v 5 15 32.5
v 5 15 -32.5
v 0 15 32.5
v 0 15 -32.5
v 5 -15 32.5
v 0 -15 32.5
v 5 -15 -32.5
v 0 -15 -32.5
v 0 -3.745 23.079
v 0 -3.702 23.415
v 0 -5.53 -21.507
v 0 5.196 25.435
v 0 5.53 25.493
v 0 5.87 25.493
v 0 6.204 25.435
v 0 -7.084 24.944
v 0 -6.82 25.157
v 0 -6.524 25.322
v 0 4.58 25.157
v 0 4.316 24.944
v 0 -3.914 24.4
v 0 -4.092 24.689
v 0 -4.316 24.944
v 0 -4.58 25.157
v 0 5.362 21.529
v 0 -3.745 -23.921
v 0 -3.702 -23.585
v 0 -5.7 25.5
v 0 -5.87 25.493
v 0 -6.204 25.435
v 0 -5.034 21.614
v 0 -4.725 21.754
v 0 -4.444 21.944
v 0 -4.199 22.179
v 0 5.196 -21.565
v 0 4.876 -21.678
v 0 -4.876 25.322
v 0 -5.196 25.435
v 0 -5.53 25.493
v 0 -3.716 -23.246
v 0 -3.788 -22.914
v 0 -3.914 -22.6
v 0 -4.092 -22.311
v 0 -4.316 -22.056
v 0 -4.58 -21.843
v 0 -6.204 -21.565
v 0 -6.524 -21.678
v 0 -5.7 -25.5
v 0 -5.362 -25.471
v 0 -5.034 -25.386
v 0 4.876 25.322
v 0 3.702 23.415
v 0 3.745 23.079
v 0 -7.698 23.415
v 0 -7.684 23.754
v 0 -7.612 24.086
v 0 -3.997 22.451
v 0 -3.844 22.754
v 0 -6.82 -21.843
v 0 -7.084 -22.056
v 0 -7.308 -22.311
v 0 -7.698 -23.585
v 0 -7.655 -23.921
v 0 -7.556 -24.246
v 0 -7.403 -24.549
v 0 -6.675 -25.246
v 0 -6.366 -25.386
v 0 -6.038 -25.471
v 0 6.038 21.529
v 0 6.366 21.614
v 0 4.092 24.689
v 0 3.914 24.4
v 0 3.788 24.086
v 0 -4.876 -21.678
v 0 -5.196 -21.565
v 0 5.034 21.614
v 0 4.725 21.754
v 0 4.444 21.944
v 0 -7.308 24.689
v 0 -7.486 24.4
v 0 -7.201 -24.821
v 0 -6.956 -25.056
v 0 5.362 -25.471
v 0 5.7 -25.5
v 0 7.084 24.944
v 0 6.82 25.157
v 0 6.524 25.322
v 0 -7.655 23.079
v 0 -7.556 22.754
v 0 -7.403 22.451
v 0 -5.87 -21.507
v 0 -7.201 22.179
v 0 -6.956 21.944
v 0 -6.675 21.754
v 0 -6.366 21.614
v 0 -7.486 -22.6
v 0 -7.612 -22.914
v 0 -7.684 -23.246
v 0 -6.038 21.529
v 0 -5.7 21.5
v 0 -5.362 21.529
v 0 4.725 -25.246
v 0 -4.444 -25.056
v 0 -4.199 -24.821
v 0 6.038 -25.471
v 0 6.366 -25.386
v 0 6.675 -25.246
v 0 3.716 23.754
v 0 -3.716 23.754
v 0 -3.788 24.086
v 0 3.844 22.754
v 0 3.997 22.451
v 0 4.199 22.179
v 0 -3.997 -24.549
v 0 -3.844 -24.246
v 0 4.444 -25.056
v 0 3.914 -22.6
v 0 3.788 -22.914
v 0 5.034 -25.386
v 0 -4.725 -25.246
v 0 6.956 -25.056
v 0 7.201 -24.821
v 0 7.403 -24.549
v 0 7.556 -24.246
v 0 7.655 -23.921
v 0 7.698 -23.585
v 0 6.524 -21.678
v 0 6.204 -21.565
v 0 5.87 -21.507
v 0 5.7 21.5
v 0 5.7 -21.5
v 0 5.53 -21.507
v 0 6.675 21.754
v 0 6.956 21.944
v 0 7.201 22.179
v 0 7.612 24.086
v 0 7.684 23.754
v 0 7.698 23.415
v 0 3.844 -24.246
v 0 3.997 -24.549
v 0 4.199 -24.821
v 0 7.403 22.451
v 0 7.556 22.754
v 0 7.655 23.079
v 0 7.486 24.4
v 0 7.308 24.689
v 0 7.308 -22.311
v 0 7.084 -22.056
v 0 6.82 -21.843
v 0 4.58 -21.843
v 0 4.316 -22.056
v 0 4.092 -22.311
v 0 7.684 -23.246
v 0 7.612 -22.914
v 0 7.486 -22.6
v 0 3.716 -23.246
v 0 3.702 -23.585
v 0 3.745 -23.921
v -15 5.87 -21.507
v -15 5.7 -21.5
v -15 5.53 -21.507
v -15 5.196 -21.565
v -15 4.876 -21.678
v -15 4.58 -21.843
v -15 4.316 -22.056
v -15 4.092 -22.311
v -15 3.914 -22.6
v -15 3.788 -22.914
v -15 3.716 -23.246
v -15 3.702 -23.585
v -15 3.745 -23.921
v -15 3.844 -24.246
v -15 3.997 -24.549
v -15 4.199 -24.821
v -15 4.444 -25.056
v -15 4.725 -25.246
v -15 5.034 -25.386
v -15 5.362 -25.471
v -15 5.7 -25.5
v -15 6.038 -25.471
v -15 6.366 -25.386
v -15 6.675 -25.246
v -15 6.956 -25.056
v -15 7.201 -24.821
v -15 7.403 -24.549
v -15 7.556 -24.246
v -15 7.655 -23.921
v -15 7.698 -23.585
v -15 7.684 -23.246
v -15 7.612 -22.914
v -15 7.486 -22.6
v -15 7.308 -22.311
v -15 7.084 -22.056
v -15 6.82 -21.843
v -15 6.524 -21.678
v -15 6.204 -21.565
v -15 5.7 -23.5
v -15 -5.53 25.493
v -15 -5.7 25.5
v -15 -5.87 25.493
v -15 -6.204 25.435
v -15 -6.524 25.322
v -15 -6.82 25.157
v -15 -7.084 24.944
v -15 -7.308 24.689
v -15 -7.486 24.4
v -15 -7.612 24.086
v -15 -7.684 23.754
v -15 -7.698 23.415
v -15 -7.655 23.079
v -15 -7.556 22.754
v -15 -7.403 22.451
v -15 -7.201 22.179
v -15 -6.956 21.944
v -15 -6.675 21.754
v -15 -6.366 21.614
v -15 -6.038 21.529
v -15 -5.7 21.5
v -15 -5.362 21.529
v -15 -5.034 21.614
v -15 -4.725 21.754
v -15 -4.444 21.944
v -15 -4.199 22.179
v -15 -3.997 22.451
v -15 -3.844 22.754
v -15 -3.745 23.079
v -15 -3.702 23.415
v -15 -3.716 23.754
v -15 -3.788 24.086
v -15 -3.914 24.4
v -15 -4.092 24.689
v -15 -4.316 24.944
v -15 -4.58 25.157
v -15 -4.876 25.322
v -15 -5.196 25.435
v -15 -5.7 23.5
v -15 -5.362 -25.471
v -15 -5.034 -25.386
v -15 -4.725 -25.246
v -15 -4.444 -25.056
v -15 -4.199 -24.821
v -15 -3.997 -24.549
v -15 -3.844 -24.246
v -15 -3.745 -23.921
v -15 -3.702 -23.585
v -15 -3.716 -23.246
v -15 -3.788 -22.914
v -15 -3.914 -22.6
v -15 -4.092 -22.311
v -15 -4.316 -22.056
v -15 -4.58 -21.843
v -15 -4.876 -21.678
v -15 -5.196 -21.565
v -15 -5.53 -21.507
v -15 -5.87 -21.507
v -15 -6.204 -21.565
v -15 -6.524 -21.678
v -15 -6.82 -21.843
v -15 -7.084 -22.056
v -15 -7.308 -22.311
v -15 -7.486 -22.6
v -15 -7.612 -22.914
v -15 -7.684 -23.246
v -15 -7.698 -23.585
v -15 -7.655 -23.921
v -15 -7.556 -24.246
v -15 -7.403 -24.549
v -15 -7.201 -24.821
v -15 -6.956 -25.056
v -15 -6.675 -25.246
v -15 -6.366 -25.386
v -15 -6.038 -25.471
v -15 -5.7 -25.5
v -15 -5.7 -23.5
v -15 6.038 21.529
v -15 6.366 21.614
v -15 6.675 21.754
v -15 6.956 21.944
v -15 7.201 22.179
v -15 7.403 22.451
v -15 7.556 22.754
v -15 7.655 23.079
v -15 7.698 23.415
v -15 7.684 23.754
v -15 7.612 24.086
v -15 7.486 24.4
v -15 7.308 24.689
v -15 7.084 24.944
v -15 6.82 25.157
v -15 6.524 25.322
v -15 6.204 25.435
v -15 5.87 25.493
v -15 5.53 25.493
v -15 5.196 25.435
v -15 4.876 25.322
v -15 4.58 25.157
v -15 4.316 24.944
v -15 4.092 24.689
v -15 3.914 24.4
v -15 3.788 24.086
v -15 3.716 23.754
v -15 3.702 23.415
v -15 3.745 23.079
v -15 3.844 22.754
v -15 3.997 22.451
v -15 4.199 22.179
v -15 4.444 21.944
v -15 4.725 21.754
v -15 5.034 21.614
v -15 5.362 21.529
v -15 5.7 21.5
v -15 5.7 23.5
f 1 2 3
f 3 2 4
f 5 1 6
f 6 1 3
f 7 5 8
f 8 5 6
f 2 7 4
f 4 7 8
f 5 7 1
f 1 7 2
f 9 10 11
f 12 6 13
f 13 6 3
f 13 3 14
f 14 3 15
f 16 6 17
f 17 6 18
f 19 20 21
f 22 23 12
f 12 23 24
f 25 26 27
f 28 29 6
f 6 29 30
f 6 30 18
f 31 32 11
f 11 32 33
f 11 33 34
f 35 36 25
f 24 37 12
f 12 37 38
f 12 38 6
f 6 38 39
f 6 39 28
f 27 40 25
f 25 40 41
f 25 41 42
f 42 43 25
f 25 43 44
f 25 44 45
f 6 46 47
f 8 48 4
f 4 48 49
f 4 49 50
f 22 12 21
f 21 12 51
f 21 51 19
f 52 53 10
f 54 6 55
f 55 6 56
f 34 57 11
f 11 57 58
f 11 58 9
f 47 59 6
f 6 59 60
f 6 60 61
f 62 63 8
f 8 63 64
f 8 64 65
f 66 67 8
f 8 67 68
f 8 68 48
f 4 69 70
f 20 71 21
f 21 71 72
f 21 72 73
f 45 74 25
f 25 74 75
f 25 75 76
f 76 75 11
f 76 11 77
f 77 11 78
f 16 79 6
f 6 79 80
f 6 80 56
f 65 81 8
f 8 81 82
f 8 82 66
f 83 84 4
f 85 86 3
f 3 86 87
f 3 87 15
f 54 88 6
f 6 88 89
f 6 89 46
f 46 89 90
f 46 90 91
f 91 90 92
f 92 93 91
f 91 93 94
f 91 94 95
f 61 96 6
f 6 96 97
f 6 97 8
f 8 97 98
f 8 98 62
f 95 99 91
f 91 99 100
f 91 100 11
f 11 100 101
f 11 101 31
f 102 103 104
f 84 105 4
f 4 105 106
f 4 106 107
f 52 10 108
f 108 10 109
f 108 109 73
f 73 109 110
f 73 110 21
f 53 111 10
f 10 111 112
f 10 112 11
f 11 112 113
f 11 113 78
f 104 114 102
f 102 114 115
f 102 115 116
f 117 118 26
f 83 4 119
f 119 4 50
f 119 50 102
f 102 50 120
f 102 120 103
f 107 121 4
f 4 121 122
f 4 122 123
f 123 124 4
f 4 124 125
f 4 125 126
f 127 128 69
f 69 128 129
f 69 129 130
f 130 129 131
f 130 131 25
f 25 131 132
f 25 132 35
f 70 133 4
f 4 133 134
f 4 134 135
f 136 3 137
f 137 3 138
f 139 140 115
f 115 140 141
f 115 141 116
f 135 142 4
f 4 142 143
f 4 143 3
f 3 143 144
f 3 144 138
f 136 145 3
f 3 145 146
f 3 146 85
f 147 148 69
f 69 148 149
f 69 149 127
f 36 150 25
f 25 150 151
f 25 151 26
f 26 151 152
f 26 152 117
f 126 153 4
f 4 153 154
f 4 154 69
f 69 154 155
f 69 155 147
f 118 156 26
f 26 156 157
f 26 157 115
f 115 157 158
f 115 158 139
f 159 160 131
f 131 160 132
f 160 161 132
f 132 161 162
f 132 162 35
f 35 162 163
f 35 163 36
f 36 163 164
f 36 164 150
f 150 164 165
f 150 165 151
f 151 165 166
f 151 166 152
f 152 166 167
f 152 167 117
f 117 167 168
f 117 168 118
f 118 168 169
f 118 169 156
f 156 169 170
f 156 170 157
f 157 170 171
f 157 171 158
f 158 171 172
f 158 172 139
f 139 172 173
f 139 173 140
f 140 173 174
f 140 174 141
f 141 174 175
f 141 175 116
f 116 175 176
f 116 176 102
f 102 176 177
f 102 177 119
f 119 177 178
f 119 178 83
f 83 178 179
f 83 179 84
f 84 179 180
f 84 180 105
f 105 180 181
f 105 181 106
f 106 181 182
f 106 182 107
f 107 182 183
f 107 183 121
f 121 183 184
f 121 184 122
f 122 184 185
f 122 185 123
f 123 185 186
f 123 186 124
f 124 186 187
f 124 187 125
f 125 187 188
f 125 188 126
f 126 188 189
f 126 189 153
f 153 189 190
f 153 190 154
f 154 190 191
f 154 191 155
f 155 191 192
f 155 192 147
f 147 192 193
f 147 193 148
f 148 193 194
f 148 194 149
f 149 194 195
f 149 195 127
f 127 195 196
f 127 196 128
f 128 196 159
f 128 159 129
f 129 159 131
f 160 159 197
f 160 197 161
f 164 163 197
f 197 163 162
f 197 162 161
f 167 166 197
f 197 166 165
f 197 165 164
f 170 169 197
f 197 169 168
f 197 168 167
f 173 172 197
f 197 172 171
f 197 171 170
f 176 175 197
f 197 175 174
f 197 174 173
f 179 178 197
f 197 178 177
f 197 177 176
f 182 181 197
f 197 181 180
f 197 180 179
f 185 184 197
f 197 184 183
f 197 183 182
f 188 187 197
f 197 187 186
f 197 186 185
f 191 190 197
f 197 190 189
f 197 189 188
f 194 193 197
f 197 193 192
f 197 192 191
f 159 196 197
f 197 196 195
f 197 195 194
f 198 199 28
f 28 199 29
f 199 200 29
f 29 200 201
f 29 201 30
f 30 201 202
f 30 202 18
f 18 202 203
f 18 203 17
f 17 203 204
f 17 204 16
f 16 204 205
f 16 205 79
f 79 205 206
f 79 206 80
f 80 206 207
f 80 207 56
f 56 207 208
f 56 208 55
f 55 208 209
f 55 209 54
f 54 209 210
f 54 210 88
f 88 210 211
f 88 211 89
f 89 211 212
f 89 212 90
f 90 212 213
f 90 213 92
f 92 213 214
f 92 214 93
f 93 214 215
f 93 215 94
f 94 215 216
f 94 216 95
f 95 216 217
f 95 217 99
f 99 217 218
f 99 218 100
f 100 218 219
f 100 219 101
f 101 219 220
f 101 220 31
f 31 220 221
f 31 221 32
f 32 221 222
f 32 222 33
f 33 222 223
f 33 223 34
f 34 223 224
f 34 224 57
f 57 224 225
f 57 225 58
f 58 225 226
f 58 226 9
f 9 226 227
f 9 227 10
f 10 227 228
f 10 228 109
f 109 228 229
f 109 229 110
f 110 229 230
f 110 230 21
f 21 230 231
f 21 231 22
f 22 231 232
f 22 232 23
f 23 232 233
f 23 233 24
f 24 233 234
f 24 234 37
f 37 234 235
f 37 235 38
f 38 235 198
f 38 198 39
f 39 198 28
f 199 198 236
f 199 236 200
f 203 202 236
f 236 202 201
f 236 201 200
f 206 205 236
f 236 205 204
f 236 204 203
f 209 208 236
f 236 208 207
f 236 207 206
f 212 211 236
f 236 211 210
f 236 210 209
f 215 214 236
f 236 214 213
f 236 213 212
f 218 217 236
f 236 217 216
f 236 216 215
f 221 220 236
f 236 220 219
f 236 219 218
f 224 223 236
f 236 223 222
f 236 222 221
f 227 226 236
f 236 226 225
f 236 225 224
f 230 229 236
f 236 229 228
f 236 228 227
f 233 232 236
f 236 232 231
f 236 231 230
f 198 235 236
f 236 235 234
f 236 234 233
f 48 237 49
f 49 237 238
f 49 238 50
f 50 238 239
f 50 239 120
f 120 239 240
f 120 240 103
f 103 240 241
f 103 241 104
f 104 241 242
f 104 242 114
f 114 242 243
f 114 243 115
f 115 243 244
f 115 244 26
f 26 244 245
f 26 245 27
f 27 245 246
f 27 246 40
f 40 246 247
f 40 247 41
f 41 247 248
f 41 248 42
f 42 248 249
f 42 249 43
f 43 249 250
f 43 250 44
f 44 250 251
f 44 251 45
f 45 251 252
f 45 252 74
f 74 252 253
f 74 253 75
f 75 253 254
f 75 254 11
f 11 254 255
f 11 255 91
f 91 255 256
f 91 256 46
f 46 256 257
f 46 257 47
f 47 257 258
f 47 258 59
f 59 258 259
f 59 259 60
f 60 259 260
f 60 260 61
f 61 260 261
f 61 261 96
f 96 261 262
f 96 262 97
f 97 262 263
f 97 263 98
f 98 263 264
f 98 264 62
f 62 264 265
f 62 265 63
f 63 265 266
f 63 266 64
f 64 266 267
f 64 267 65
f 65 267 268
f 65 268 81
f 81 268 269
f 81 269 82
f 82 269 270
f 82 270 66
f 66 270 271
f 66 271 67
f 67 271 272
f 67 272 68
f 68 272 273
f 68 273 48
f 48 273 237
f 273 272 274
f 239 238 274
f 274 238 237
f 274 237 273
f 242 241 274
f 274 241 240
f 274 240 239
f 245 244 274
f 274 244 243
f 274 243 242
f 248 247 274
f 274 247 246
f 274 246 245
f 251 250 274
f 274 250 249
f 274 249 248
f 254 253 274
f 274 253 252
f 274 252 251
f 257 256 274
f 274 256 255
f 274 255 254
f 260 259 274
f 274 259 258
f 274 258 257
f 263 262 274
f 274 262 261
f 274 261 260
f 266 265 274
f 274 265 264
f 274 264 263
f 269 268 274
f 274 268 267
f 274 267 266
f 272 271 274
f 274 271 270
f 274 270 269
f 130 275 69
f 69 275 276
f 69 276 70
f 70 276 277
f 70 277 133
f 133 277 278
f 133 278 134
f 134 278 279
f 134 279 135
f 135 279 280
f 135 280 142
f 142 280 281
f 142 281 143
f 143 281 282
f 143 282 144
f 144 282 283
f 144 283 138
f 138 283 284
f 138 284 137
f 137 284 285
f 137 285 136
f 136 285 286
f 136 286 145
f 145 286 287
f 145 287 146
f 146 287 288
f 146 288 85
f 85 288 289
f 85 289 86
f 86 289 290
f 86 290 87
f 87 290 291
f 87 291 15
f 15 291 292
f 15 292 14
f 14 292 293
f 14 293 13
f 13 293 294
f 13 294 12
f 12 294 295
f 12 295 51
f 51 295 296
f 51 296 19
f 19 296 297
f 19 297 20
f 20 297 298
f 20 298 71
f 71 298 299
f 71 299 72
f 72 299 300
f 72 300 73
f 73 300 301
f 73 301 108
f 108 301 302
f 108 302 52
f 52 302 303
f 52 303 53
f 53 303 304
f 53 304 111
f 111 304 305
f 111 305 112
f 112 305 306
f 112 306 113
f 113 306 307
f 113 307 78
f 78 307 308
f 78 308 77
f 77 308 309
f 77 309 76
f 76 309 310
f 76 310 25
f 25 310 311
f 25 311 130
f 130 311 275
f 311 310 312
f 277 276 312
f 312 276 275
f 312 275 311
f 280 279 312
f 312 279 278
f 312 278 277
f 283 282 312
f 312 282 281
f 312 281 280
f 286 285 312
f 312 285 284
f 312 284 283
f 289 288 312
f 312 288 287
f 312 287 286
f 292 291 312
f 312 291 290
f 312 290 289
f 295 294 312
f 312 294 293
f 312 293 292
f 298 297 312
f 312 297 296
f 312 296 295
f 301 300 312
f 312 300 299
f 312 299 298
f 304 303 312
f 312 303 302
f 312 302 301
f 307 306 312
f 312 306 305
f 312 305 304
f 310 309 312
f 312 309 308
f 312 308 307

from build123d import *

# Parameters (mm, degrees)
SKETCH3_W           = 30
SKETCH3_H           = 65
BOSS_EXTRUDE1_DEPTH = 5
SKETCH4_R           = 2
BOSS_EXTRUDE2_DEPTH = 15


with BuildPart() as part:
    # Sketch3 → Boss-Extrude1 (new body)
    with BuildSketch(Plane.YZ):
        Rectangle(SKETCH3_W, SKETCH3_H)
    extrude(amount=BOSS_EXTRUDE1_DEPTH)

    # Sketch4 → Boss-Extrude2 (add)
    with BuildSketch(Plane(origin=(0, 0, 0), x_dir=(0, -1, 0), z_dir=(-1, 0, 0))):
        with Locations(Location((-5.7, -23.5, 0), (0, 0, 270))):
            Circle(SKETCH4_R)
        with Locations(Location((-5.7, 23.5, 0), (0, 0, 270))):
            Circle(SKETCH4_R)
        with Locations(Location((5.7, -23.5, 0), (0, 0, 270))):
            Circle(SKETCH4_R)
        with Locations(Location((5.7, 23.5, 0), (0, 0, 270))):
            Circle(SKETCH4_R)
    extrude(amount=BOSS_EXTRUDE2_DEPTH)


solid = part.part
